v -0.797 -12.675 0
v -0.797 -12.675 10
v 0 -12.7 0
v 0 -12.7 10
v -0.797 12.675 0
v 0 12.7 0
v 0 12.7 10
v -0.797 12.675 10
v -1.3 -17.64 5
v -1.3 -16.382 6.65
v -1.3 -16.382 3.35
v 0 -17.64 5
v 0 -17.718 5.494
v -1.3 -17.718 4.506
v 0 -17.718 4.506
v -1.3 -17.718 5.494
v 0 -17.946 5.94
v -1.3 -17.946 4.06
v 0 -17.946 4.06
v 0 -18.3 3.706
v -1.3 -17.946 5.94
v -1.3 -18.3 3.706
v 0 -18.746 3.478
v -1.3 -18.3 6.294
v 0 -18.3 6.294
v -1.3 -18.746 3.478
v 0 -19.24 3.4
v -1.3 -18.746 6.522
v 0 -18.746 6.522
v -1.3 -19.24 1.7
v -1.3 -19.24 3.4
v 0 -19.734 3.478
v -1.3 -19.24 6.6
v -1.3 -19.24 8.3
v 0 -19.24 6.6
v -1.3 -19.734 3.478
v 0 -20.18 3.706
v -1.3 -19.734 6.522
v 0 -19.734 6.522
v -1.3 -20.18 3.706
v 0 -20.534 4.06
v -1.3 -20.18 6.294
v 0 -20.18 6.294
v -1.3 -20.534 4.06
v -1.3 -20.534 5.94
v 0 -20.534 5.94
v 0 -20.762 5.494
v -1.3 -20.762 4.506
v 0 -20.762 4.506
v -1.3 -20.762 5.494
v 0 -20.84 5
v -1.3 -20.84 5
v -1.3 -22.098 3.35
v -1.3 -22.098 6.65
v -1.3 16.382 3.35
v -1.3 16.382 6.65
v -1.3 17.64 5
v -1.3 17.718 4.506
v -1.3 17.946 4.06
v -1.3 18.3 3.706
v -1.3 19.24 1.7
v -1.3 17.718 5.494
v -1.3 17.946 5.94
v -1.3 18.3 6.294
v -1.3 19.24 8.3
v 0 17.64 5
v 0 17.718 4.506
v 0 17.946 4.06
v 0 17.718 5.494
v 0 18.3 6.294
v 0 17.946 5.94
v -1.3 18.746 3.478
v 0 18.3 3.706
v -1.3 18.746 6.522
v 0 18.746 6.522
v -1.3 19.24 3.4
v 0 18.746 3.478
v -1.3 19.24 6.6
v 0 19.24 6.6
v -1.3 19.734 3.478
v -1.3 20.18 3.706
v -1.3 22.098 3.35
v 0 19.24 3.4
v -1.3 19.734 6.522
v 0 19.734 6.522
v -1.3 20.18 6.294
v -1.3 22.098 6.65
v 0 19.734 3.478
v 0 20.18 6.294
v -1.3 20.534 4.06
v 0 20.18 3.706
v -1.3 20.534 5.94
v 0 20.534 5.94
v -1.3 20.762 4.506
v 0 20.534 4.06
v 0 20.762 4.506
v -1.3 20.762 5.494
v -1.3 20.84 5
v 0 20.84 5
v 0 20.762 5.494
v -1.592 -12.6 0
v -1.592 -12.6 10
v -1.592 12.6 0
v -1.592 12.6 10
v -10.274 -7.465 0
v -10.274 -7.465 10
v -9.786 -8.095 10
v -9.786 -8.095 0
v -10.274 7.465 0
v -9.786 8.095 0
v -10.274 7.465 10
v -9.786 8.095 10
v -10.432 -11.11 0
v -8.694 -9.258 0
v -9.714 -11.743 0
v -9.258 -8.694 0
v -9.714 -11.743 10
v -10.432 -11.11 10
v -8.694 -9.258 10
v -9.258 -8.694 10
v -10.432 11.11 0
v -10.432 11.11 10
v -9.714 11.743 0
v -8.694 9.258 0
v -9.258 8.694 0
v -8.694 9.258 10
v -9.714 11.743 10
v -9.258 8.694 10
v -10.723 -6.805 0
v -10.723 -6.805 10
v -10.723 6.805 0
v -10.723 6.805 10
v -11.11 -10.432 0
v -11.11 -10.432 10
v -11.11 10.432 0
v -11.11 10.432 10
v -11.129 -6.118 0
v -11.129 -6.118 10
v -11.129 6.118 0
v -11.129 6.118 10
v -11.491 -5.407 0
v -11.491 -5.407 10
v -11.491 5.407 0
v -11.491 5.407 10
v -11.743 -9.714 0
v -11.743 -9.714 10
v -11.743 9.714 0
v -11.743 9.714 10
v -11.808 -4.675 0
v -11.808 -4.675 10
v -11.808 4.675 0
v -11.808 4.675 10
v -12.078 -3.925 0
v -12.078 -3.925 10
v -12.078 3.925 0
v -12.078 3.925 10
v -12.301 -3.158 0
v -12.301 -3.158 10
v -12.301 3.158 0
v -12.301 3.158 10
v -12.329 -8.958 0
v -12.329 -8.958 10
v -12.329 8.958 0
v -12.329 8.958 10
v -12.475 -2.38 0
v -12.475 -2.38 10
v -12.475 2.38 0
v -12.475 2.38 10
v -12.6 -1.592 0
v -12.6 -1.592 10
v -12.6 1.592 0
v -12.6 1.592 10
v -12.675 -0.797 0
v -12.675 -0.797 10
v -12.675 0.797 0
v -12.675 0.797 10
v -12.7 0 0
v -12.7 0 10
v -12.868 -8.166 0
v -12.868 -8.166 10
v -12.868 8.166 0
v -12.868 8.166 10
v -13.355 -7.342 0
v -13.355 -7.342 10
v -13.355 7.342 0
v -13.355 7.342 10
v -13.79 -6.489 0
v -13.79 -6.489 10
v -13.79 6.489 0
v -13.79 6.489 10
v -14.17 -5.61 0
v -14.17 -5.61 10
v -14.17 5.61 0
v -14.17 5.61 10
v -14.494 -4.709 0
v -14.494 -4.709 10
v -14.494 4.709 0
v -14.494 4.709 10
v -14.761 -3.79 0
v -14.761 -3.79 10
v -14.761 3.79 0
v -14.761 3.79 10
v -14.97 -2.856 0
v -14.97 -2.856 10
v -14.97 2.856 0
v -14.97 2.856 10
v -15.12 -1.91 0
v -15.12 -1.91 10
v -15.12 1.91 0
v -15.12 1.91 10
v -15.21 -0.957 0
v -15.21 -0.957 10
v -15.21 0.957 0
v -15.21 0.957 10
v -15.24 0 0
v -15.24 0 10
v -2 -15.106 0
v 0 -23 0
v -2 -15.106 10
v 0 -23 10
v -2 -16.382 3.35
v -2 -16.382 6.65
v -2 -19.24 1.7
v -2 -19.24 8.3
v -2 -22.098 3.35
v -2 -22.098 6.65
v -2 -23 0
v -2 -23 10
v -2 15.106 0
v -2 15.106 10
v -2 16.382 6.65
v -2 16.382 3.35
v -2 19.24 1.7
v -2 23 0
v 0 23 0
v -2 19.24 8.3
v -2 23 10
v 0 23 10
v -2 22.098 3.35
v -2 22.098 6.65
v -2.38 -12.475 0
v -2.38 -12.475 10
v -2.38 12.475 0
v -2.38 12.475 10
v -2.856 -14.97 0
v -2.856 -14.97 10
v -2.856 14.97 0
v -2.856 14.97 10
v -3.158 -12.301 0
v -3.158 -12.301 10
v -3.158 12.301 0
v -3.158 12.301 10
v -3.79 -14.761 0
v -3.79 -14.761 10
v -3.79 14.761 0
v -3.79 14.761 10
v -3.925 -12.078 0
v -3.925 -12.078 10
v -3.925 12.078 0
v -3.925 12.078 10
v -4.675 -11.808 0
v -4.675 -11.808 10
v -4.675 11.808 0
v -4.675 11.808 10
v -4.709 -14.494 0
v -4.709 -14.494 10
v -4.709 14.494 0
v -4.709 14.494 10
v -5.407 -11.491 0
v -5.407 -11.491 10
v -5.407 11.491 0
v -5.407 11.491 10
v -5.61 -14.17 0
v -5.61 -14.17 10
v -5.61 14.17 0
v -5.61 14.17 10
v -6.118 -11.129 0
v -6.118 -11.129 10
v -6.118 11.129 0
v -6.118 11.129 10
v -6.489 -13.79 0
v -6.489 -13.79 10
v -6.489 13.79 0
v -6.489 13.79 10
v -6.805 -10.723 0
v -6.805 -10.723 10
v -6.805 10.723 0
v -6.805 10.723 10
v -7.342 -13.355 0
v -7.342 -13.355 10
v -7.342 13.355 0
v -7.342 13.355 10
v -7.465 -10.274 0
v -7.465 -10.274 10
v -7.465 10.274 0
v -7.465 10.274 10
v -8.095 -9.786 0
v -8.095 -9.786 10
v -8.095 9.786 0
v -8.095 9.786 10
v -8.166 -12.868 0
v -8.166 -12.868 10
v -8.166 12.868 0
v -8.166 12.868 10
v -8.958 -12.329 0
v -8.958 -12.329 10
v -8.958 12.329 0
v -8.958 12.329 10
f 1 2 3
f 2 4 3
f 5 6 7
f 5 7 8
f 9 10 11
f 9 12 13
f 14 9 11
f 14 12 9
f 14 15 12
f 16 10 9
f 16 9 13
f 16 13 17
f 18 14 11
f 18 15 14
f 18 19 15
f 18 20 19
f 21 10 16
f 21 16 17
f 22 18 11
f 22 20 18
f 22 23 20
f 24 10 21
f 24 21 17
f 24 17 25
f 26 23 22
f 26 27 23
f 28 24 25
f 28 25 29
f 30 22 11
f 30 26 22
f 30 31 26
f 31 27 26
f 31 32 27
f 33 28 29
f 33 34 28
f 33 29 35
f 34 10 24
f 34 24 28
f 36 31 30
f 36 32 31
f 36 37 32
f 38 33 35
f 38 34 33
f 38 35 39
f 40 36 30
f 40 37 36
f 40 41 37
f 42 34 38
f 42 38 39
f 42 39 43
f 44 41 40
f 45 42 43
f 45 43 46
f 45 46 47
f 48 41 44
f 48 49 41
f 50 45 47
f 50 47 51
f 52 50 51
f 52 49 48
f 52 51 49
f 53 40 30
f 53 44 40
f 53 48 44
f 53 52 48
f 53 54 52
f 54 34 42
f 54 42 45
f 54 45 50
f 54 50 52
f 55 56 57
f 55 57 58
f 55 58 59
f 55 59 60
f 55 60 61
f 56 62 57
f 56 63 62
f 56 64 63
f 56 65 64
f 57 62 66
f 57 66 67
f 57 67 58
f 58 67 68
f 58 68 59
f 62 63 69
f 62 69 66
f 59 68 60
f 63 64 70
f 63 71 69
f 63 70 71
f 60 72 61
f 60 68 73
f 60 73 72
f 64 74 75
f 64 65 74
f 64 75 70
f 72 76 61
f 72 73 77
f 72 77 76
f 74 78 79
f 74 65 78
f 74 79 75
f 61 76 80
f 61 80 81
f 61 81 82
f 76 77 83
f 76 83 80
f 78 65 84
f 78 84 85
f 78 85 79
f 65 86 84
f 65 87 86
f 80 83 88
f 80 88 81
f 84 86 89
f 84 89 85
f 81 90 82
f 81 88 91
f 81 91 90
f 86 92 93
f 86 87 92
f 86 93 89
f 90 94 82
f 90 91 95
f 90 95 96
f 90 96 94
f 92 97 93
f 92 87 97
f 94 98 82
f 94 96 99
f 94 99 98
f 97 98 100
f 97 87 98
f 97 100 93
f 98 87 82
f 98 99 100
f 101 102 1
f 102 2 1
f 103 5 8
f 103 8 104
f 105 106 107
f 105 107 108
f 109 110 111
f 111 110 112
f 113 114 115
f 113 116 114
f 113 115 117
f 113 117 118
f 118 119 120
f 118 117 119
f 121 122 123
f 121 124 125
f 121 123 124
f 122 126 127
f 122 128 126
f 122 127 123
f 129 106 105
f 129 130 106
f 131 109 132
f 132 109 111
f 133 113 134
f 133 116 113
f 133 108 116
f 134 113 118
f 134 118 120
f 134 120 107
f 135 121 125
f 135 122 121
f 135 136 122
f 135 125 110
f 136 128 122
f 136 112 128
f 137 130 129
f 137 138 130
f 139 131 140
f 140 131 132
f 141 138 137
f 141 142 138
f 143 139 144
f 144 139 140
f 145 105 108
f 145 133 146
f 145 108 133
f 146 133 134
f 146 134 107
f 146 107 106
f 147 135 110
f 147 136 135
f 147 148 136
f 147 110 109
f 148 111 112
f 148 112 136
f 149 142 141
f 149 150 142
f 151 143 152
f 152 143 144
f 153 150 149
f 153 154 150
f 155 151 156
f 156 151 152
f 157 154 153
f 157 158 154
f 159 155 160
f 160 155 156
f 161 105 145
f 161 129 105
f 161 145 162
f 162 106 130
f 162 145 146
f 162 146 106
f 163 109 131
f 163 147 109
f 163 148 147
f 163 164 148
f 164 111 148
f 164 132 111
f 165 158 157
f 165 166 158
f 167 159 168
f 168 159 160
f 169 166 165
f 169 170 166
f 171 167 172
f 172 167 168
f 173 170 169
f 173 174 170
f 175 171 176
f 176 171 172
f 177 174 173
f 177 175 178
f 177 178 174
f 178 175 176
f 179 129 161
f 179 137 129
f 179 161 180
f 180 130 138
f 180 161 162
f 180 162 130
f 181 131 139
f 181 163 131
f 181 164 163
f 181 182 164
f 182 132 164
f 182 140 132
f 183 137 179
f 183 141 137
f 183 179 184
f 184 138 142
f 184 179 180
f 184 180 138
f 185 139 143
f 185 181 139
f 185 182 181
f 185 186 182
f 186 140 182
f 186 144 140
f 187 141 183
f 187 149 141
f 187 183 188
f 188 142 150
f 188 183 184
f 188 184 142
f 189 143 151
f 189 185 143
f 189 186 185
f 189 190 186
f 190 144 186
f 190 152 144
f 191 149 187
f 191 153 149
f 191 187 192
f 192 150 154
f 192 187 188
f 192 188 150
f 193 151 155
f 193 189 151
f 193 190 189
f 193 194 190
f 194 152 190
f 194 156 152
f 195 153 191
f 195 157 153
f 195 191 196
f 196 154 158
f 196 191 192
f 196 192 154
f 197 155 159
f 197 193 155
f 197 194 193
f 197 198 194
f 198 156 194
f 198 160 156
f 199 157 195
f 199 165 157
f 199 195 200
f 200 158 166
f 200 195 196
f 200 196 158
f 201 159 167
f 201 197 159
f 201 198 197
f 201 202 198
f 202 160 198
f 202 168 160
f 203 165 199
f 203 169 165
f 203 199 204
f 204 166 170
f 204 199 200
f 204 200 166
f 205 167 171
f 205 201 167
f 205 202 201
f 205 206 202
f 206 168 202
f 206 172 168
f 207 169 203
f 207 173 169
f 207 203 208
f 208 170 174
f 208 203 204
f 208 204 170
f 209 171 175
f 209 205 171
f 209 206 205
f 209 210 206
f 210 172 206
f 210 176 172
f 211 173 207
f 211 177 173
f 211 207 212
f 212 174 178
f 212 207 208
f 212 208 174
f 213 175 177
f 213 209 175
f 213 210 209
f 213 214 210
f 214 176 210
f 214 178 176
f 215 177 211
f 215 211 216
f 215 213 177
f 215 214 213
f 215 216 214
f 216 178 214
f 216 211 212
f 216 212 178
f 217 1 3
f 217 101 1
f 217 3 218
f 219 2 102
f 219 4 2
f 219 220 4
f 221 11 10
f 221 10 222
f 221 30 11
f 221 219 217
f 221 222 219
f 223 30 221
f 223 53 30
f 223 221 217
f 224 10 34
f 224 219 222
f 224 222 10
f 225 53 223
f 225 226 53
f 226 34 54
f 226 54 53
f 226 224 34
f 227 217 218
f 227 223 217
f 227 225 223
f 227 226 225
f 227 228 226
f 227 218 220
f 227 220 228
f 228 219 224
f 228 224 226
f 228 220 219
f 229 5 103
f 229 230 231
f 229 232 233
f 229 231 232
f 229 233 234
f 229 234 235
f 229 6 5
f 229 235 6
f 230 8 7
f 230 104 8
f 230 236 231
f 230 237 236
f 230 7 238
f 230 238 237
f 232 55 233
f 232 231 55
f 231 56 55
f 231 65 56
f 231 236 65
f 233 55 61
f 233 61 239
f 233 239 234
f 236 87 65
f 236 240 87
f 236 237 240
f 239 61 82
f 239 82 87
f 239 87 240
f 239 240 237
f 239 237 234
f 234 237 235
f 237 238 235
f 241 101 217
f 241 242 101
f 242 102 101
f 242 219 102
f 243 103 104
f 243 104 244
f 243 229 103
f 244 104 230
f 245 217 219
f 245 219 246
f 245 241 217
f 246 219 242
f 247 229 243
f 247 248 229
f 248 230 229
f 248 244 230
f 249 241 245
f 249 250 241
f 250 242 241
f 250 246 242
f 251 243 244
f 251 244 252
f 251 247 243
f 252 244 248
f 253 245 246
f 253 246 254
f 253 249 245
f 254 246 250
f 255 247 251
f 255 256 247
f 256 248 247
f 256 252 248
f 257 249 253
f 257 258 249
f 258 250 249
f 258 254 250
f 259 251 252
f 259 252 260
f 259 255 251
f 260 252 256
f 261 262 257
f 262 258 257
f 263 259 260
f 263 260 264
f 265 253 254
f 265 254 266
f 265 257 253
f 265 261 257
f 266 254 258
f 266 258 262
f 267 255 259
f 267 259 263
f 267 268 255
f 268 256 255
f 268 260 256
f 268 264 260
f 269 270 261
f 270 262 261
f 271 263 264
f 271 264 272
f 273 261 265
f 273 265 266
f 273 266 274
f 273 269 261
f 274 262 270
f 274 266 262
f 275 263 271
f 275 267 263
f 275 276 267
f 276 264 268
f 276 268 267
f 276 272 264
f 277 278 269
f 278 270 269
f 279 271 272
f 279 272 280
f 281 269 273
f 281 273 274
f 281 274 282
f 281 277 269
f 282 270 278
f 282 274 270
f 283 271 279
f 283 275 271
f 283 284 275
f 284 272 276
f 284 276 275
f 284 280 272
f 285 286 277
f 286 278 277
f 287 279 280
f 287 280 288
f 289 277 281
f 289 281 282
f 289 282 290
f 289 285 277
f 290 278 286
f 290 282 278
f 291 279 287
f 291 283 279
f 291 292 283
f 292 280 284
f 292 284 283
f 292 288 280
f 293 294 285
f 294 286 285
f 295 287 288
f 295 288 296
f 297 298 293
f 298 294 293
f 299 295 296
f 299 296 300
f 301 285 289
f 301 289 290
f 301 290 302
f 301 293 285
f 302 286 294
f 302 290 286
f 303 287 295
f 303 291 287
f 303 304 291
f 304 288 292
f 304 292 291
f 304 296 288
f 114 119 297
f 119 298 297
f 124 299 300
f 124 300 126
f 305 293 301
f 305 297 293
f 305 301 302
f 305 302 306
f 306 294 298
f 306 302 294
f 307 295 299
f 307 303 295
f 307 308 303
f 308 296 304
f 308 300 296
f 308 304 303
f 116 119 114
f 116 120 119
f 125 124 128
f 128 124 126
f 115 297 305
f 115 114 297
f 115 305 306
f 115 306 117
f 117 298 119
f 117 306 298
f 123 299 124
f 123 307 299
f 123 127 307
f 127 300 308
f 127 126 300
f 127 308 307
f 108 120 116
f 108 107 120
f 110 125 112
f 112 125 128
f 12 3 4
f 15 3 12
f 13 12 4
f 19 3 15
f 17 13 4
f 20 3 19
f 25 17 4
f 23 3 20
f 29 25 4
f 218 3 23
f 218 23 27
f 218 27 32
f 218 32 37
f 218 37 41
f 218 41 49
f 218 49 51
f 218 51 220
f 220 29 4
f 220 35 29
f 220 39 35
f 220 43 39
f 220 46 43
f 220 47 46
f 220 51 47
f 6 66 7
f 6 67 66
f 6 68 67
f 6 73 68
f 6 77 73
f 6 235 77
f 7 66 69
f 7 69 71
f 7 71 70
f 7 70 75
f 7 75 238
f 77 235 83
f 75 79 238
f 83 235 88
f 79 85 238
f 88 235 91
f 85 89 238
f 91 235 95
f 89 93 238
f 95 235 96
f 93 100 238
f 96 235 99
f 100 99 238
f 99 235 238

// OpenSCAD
// file: ../Parameters.scad
//Main tube diameter - hole [mm]
main_tube_outer_diameter = 25.4;
main_tube_inner_diameter = 23.5;

//Tube for undercarriage - hole [mm]
tube_for_undercarriage_outer_diameter = 10.6;
tube_for_undercarriage_inner_diameter = 6;
global_clearance = 0.5;


//umístění podvozkových trubek

second_undercarriage_hole = main_tube_outer_diameter*2 + main_tube_outer_diameter/5 + main_tube_outer_diameter/2 + 170 + 160;

// Parameters of cube couplings
coupling_wall_thickness = main_tube_outer_diameter/5;  //width of coupling walls 
thickness_between_tubes = main_tube_outer_diameter/10;    // minimum distance between tubes in couplings

coupling_wall_thickness_undercarriage = tube_for_undercarriage_outer_diameter/3;
thickness_between_tubes_undercarriage = tube_for_undercarriage_outer_diameter/10;

//Screw diameter and nut for M4 [mm]
M4_screw_diameter=4.5;
Nut_height_M4 = 3.2;
Nut_diameter_M4 = 7.86;


//Screw diameter and nut for M3 [mm]
M3_screw_diameter = 3.2;
Nut_height_M3 = 1.7;	
Nut_diameter_M3 = 6.6; 


//The tube for help
Help_main_tube_outer = 25;
Help_main_tube_inner = 23; 
Help_tube_for_undercarriage_outer = 10;
Help_tube_for_undercarriage_inner = 5;


//main hull parameters

hull_drop_length = 580;
hull_wall_thickness = 0.8;
hull_y_size = 120;
hull_z_size = 150;
hull_x_size = 580;
hull_corner_radius = 4;
hull_airfoil_thickness= 35;  // thickness of drop generating airfoil in percent of lenght.
hull_scale_x = 1;
hull_scale_y = 1.5;
hull_scale_z = 1.5;

main_pilon_position = 170+68;
cover_pilon_position = 180;
height_of_vertical_tube = 275; //278mm je změřená délka trubky. 

ribbon_width = 5; // šířka vyztužovacích lemů. 

// šířka otvoru v přední části kapoty pro držák motoru.
width_of_engine_holder = 63;

//Top Cover Division - dělení horního krytu pro tisk
top_cover_division = [0, 50, 150, 280, 410, hull_x_size]; // upraveny seznam tak, aby deleni začinalo od nuly, což umožňí úplně automatické rozdělení.

//Bottom Cover Division - dělení dolního krytu pro tisk
bottom_cover_division = [0,100,250,365, 470, hull_x_size];
// zkrácená část pro payload pro testovací tisk
//bottom_cover_division = [0,200,250,365, 470, hull_x_size];

//Base Divison - dělení podložky
base_division = [0,140,280,410, hull_x_size];

//Cover pilon division - na výšku (v ose Z)
cover_pilon_division = [0,170,height_of_vertical_tube + main_tube_outer_diameter + coupling_wall_thickness];

//pozice šroubů
	//horní kryt
top_screw_position = [0, (top_cover_division[0] + top_cover_division[1])/4, (top_cover_division[2] - top_cover_division[1])/2 + top_cover_division[1], (top_cover_division[3] - top_cover_division[2])/2 + top_cover_division[2],(top_cover_division[4] - top_cover_division[3])/2 + top_cover_division[3],(top_cover_division[5] - top_cover_division[4])/2 + top_cover_division[4] - 20];
	//spodní kryt
bottom_screw_position = [0,(bottom_cover_division[0] + bottom_cover_division[1])/15 + 5, bottom_cover_division[1]/1.1, + bottom_cover_division[3], bottom_cover_division[3] + bottom_cover_division[1]/2, bottom_cover_division[4] - 6*global_clearance, bottom_cover_division[4] + bottom_cover_division[1]/2.5];




//šířka zámků
lock_width = 10;

//délka zámků
lock_length = 3;


//accumulator
//základní rozměry akumulátoru
width_of_accumulator = 129.4;//45+1;
depth_of_accumulator = 40.61;
height_of_accumulator = 43.65;
//Zapuštění akumulátoru
sink_of_accumulator = 5; //main_tube_outer_diameter/5 - Nut_height_M3*1.5;

//tloušťka hrany spojky
accumulator_holder_width = 18; 
accumulator_holder_thickness = 10; 

//posunutí akumálátoru na podložce
move_of_accumulator = 165;   // pozice akumulátoru (ovlivňuje těžiště)


////////////////
// Senzory
///////////////////

//opticalFlow
    width_optical_flow_senzor = 45.5;
    depth_optical_flow_senzor = 6;
    height_optical_flow_senzor = 35;
    sink_of_optical_flow_senzor = depth_optical_flow_senzor - 5; 
    M3_optical_flow_senzor_Z = 30.4;
    M3_optical_flow_senzor_X = 24;
    M3_optical_flow_senzor_Z_alone = 9.1;
    M3_optical_flow_senzor_X_alone = 16.7;
// file: lib/naca4.scad
// Naca4.scad - library for parametric airfoils of 4 digit NACA series
// Code: Rudolf Huttary, Berlin 
// June 2015
// commercial use prohibited


// general use: for more examples refer to sampler.scad
// naca = naca digits or 3el vector  (default = 12 or [0, 0, .12])
// L    = chord length [mm]      (default= 100)
// N    = # sample points        (default= 81)
// h    = height [mm]            (default= 1)
// open = close at the thin end? (default = true)
// two equivalent example calls
 airfoil(naca = 2408, L = 60, N=1001, h = 30, open = false); 
// airfoil(naca = [.2, .4, .32], L = 60, N=1001, h = 30, open = false); 

module help()
{
  echo(str("\n\nList of signatures in lib:\n=================\n", 
  "module airfoil(naca=2412, L = 100, N = 81, h = 1, open = false) - renders airfoil object\n", 
  "module airfoil(naca=[.2, .4, .12], L = 100, N = 81, h = 1, open = false) - renders airfoil object using percentage for camber,  camber distance and thicknes\n", 
  "function airfoil_data(naca=12, L = 100, N = 81, open = false)\n",
  "=================\n")); 
}

help(); 
// this is the object
module airfoil(naca=12, L = 100, N = 81, h = 1, open = false)
{
  linear_extrude(height = h)
  polygon(points = airfoil_data(naca, L, N, open)); 
}

module hollow_airfoil(lnaca=12, L = 100, N = 81, h = 1, open = false, wall_thickness = 1)
{
    if (open){
        linear_extrude(height = h)

        if (wall_thickness>0){
            difference(){
                polygon(points = airfoil_data(naca, L, N, false));
                offset(delta = - wall_thickness, chamfer = false) polygon(points = airfoil_data(naca, L, N, open = false));
            }
        }
        else{
            difference(){
                offset(delta = - wall_thickness, chamfer = false) polygon(points = airfoil_data(naca, L, N, open = false));
                polygon(points = airfoil_data(naca, L, N, false));
            }
        }
    }
    else{

        linear_extrude(height = abs(wall_thickness))
            polygon(points = airfoil_data(naca, L, N, false)); 

        linear_extrude(height = h)
            difference(){
                polygon(points = airfoil_data(naca, L, N, open));
                offset(delta = - wall_thickness) polygon(points = airfoil_data(naca, L, N, open = false));
            }

        translate([0,0, h - wall_thickness])
            linear_extrude(height = abs(wall_thickness))
                polygon(points = airfoil_data(naca, L, N, false)); 

    }
}


// this is the main function providing the airfoil data
function airfoil_data(naca=12, L = 100, N = 81, open = false) = 
  let(Na = len(naca)!=3?NACA(naca):naca)
  let(A = [.2969, -0.126, -.3516, .2843, open?-0.1015:-0.1036])
  [for (b=[-180:360/(N):179.99]) 
    let (x = (1-cos(b))/2)  
    let(yt = sign(b)*Na[2]/.2*(A*[sqrt(x), x, x*x, x*x*x, x*x*x*x])) 
    Na[0]==0?L*[x, yt]:L*camber(x, yt, Na[0], Na[1], sign(b))];  


function trailing_edge_angle(naca=12, open = false) = 
  let(Na = len(naca)!=3?NACA(naca):naca)
  let(A = [.2969, -0.126, -.3516, .2843, open?-0.1015:-0.1036])
  let (x =0.999)  // set x near to airfoil trailing edge
  let(yt = Na[2]/.2*(A*[sqrt(x), x, x*x, x*x*x, x*x*x*x])) // calculate distance from x-axis at previously set position
  atan2(yt,1-x);  // calculate angle of triangle between end of airfoil. The triange height corresponds to previously calculated distance from x-axis

function surface_angle(x = 0.5, naca=12, open = false) = 
  let(Na = len(naca)!=3?NACA(naca):naca)
  let(A = [0.2969, -0.126, -0.3516, 0.2843, open?-0.1015:-0.1036])
  let(dy = Na[2]/0.2*(A*[(1/2)*(1/sqrt(x)), 1, 2*x, 3*x*x, 4*x*x*x])) // calculate derivative of airfoil function at the x point
  atan(dy);  // calculate  the angle from function derivative

function surface_distance(x = 0.5, naca=12, open = false) = 
  let(Na = len(naca)!=3?NACA(naca):naca)
  let(A = [0.2969, -0.126, -0.3516, 0.2843, open?-0.1015:-0.1036])
  Na[2]/.2*(A*[sqrt(x), x, x*x, x*x*x, x*x*x*x]); // calculate distance from x-axis at previously set position

// helper functions
function NACA(naca) = 
  let (M = floor(naca/1000))
  let (P = floor((naca-M*1000)/100)) 
  [M/100, P/10, floor(naca-M*1000-P*100)/100];  

function camber(x, y, M, P, upper) = 
  let(yc = (x<P)?M/P/P*(2*P*x-x*x): M/(1-P)/(1-P)*(1 - 2*P + 2*P*x -x*x))
  let(dy = (x<P)?2*M/P/P*(P-x):2*M/(1-P)/(1-P)*(P-x))
  let(th = atan(dy))
  [upper ? x - y*sin(th):x + y*sin(th), upper ? yc + y*cos(th):yc - y*cos(th)];
// main file
use <./lib/naca4.scad>
include <../Parameters.scad>

module 666_1018(){
union(){
	difference(){
				cylinder (h = 10, r1 = (main_tube_outer_diameter*1.2)/2, r2 = (main_tube_outer_diameter*1.2)/2, $fn = 100);
		translate([0,0,-2])	
				cylinder (h = 14, r1 = main_tube_outer_diameter/2, r2 = main_tube_outer_diameter/2, $fn = 100);
		translate([-2,-main_tube_outer_diameter,-2])		
				cube([main_tube_outer_diameter*2, main_tube_outer_diameter*2, main_tube_outer_diameter]);

	}
	difference(){
		translate([-2,-23,0])
				cube([2,46,10]);
		translate([0,0,-2])			
				cylinder (h = 14, r1 = main_tube_outer_diameter/2, r2 = main_tube_outer_diameter/2, $fn = 100);
	//otvory pro šrouby
		translate([-15,(main_tube_outer_diameter*1.2)/2+4,5])
			rotate([0,90,0])
				cylinder(h = 30, r1 = M3_screw_diameter/2, r2 = M3_screw_diameter/2, $fn = 20);
		translate([-15,-(main_tube_outer_diameter*1.2)/2-4,5])
			rotate([0,90,0])
				cylinder(h = 30, r1 = M3_screw_diameter/2, r2 = M3_screw_diameter/2, $fn = 20);


	//otvor pro matku
		translate([-3,(main_tube_outer_diameter*1.2)/2+4,5])
			rotate([0,90,0])
                cylinder(h = Nut_height_M3, r1 = Nut_diameter_M3/2, r2 = Nut_diameter_M3/2, $fn = 6);
		translate([-3,-(main_tube_outer_diameter*1.2)/2-4,5])
			rotate([0,90,0])
                cylinder(h = Nut_height_M3, r1 = Nut_diameter_M3/2, r2 = Nut_diameter_M3/2, $fn = 6);

	}
}





}
666_1018();
